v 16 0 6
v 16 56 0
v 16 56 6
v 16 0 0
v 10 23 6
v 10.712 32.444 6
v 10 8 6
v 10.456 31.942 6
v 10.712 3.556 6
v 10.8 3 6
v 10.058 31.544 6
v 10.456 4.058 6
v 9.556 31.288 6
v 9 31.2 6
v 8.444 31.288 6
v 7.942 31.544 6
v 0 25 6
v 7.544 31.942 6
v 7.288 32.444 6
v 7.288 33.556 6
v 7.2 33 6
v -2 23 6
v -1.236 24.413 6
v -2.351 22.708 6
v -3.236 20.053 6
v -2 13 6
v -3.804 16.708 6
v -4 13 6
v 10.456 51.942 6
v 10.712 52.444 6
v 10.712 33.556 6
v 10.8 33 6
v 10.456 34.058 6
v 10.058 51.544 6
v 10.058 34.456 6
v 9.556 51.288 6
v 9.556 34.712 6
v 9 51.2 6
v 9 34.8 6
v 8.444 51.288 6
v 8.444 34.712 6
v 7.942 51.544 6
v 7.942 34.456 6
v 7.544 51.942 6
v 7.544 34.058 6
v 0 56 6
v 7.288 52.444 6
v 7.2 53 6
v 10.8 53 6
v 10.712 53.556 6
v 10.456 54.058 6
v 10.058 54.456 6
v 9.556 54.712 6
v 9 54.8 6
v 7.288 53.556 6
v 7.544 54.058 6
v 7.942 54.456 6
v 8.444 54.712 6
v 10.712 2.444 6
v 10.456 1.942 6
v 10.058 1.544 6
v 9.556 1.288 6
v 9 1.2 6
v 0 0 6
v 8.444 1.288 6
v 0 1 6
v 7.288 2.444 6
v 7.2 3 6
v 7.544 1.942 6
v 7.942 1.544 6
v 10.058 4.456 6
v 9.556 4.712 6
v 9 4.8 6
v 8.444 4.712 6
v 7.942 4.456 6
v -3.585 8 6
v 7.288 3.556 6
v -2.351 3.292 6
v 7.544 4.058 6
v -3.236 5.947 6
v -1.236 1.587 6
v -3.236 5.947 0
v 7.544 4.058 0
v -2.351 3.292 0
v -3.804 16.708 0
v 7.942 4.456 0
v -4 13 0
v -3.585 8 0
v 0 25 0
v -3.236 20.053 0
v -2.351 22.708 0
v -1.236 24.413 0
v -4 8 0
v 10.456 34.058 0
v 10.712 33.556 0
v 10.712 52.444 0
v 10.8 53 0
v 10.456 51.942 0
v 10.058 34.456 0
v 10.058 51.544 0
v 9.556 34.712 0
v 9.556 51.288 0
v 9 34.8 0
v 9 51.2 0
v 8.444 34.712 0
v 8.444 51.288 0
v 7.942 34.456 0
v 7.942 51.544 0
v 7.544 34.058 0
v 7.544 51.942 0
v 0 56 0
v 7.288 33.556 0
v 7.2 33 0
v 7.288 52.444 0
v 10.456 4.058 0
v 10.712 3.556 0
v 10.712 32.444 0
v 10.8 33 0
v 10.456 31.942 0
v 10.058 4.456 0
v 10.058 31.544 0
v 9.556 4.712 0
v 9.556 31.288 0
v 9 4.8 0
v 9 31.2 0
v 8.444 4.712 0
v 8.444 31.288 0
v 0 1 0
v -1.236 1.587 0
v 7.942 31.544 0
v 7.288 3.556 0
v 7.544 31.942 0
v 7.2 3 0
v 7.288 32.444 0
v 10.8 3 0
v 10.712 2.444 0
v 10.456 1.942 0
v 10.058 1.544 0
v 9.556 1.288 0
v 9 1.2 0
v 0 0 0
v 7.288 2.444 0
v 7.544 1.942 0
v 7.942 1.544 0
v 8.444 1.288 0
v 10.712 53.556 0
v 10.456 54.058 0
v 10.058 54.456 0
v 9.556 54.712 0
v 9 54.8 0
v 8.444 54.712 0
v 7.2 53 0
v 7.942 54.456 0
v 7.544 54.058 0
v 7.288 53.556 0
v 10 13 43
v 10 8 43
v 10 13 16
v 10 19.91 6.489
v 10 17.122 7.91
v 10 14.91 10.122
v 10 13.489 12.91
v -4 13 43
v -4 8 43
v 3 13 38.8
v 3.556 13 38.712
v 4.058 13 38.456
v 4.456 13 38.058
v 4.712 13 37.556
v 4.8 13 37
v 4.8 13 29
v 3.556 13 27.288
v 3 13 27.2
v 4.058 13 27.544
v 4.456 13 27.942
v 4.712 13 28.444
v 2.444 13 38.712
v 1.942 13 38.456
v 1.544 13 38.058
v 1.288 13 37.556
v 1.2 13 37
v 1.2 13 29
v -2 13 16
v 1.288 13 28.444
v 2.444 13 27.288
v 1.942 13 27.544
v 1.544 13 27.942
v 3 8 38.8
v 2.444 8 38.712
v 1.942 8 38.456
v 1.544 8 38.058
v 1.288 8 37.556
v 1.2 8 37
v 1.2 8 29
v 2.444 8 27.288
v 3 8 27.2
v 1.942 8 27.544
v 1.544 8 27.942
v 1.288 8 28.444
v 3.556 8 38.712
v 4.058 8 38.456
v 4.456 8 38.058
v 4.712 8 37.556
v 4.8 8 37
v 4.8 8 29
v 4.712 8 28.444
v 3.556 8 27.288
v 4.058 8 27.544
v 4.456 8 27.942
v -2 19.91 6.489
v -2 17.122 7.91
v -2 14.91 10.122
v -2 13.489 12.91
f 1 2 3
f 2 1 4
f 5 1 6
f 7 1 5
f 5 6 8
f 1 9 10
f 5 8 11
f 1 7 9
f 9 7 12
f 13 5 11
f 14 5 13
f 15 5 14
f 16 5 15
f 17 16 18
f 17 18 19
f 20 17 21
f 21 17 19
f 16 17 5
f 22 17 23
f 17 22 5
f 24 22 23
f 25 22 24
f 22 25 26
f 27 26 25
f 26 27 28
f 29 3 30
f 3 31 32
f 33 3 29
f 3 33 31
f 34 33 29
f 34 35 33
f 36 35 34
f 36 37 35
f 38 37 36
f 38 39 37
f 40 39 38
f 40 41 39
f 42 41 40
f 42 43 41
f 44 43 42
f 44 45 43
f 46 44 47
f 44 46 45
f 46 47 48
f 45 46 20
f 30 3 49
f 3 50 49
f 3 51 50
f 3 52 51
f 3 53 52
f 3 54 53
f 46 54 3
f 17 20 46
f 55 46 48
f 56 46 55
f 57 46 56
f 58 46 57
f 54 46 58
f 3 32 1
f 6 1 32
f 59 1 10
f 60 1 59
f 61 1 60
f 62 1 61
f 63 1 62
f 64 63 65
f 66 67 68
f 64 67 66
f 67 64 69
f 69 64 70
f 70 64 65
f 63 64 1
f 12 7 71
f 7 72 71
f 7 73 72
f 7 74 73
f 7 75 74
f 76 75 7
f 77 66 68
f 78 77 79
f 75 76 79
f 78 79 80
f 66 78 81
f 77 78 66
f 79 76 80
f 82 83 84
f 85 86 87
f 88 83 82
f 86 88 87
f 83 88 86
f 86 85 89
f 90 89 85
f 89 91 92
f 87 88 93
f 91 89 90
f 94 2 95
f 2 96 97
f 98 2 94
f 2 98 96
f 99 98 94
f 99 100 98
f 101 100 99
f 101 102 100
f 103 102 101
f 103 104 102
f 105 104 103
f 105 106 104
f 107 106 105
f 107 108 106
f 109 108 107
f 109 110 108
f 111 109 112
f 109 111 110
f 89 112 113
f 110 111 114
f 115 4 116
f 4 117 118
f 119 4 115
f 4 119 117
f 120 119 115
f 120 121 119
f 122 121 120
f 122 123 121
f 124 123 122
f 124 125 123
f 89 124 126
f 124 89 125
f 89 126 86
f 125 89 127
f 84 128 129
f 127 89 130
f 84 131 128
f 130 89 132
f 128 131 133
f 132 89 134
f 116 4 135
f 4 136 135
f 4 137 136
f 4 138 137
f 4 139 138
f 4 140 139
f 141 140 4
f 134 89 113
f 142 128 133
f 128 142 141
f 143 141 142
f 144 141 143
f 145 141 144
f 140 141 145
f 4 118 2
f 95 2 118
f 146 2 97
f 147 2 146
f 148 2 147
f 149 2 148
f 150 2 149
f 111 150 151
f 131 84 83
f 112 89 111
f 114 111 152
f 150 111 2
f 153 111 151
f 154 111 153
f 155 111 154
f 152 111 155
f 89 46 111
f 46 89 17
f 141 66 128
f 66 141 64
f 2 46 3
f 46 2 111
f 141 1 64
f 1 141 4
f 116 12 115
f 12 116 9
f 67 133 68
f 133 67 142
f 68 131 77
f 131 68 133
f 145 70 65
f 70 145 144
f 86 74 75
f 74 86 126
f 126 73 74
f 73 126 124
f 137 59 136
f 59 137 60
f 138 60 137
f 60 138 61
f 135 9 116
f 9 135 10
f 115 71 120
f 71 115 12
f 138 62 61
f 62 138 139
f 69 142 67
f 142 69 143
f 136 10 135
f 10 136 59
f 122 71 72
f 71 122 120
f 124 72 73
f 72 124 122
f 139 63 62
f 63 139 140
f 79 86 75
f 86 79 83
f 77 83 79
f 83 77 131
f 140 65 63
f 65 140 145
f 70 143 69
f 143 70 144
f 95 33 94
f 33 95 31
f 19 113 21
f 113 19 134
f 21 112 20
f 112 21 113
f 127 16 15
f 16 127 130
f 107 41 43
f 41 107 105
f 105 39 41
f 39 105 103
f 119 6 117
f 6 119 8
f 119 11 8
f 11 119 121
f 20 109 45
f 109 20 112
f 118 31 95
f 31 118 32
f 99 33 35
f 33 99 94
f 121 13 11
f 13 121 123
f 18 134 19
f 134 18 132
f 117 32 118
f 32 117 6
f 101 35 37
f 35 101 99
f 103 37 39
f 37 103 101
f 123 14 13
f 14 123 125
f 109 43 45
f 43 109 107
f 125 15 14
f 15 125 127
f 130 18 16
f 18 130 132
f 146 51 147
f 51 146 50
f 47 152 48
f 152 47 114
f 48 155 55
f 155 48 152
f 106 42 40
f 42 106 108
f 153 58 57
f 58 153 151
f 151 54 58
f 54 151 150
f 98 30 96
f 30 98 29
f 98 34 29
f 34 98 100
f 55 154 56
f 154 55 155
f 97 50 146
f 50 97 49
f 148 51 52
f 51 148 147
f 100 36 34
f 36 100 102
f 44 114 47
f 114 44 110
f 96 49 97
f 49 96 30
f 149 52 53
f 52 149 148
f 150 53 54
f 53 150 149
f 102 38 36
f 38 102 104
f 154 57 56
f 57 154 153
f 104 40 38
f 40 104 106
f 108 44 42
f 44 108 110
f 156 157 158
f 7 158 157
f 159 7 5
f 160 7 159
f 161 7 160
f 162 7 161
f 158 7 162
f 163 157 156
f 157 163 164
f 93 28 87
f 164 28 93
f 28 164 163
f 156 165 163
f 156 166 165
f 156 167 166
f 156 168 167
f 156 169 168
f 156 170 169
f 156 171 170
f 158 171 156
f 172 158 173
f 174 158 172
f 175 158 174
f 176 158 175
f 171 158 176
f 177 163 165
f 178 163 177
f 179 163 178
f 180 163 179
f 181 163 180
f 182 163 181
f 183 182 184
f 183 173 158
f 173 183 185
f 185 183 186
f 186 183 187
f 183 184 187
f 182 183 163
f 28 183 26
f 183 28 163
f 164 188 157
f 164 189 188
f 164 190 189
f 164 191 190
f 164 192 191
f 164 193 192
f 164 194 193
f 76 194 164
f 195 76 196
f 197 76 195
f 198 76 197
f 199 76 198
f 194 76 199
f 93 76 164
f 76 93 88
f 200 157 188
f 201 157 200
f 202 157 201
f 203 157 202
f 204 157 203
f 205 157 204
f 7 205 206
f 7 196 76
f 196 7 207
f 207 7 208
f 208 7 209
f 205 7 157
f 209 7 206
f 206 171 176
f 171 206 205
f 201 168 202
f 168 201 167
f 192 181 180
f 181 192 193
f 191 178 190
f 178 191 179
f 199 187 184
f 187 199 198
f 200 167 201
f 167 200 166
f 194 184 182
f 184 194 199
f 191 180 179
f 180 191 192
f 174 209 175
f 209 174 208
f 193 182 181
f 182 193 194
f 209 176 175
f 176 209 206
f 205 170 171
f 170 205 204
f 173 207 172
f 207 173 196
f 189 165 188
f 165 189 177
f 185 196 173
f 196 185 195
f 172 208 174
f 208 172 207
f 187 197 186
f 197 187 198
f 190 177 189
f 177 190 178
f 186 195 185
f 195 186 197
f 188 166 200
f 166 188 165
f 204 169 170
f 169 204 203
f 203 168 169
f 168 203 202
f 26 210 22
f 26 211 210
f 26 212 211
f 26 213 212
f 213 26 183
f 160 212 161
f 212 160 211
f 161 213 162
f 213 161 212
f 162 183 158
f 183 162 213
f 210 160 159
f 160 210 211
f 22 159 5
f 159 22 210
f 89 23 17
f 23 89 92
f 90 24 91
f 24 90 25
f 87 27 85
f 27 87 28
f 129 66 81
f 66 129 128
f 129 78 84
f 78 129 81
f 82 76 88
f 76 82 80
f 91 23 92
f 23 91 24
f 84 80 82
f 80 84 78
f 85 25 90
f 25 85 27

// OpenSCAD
//Infant-breath-mechanical-simulator
//https://github.com/arisberd/Infant-breath-mechanical-simulator
//version 0.2
//GNU GPL v3

//This printed piece attach the plunger of the syringe to the carriage
//This 3d printed model uses 100ml syringe with threaded plunger, and the syringe is mounted at x-end mount holes
//The plunger must have thread, otherwise the suringe_attacher_will_flange should be used
// The position of the holes in the carriage are [0,30,50]
//

base_thickness= 10-4;
attacher_thickness=3+2;
height = 43; // the height of the plunger of the syringe

module cylinder_double (r,h,x,y,z) {
   hull() {
    translate([x/2,y/2,z/2]) cylinder(r = r, h = h);
    translate([-x/2,-y/2,-z/2]) cylinder(r = r, h = h );
}
}


$fn=20;

difference () {
    cube ([12+3+1,56,base_thickness]);
    translate([12/2+3,3,0]) rotate (0,90,0)  cylinder_double (r=1.8,h=20,x=5);
    translate([12/2+3,3+30,0]) rotate (0,90,0)  cylinder_double (r=1.8,h=20,x=5);
    translate([12/2+3,3+50,0]) rotate (0,90,0)  cylinder_double (r=1.8,h=20,x=5);
};

translate([-3,0,0]) difference () {
    translate ([-1,8,0]) cube ([14, attacher_thickness, height]);
    translate ([12/2,0,height-10]) rotate ([-90,0,0]) cylinder_double (r=1.8, h = 56, x=0, y=8, z=0 );
    
}

//support of the structure if needed
translate([-2,23,base_thickness+10.0]) {
    difference () {
        rotate([0,90,0]) difference () {
        cylinder (h=12, r=15);
        cylinder (h=12, r= 10);
        }
    
    translate([-1,-50,0]) cube ([100,100,100]);
    translate([-1,0,-50]) cube ([100,100,100]);
    }
}
translate([0,13,0]) {
    scale([1,3,1]) cylinder(h=base_thickness, r=4);
}
